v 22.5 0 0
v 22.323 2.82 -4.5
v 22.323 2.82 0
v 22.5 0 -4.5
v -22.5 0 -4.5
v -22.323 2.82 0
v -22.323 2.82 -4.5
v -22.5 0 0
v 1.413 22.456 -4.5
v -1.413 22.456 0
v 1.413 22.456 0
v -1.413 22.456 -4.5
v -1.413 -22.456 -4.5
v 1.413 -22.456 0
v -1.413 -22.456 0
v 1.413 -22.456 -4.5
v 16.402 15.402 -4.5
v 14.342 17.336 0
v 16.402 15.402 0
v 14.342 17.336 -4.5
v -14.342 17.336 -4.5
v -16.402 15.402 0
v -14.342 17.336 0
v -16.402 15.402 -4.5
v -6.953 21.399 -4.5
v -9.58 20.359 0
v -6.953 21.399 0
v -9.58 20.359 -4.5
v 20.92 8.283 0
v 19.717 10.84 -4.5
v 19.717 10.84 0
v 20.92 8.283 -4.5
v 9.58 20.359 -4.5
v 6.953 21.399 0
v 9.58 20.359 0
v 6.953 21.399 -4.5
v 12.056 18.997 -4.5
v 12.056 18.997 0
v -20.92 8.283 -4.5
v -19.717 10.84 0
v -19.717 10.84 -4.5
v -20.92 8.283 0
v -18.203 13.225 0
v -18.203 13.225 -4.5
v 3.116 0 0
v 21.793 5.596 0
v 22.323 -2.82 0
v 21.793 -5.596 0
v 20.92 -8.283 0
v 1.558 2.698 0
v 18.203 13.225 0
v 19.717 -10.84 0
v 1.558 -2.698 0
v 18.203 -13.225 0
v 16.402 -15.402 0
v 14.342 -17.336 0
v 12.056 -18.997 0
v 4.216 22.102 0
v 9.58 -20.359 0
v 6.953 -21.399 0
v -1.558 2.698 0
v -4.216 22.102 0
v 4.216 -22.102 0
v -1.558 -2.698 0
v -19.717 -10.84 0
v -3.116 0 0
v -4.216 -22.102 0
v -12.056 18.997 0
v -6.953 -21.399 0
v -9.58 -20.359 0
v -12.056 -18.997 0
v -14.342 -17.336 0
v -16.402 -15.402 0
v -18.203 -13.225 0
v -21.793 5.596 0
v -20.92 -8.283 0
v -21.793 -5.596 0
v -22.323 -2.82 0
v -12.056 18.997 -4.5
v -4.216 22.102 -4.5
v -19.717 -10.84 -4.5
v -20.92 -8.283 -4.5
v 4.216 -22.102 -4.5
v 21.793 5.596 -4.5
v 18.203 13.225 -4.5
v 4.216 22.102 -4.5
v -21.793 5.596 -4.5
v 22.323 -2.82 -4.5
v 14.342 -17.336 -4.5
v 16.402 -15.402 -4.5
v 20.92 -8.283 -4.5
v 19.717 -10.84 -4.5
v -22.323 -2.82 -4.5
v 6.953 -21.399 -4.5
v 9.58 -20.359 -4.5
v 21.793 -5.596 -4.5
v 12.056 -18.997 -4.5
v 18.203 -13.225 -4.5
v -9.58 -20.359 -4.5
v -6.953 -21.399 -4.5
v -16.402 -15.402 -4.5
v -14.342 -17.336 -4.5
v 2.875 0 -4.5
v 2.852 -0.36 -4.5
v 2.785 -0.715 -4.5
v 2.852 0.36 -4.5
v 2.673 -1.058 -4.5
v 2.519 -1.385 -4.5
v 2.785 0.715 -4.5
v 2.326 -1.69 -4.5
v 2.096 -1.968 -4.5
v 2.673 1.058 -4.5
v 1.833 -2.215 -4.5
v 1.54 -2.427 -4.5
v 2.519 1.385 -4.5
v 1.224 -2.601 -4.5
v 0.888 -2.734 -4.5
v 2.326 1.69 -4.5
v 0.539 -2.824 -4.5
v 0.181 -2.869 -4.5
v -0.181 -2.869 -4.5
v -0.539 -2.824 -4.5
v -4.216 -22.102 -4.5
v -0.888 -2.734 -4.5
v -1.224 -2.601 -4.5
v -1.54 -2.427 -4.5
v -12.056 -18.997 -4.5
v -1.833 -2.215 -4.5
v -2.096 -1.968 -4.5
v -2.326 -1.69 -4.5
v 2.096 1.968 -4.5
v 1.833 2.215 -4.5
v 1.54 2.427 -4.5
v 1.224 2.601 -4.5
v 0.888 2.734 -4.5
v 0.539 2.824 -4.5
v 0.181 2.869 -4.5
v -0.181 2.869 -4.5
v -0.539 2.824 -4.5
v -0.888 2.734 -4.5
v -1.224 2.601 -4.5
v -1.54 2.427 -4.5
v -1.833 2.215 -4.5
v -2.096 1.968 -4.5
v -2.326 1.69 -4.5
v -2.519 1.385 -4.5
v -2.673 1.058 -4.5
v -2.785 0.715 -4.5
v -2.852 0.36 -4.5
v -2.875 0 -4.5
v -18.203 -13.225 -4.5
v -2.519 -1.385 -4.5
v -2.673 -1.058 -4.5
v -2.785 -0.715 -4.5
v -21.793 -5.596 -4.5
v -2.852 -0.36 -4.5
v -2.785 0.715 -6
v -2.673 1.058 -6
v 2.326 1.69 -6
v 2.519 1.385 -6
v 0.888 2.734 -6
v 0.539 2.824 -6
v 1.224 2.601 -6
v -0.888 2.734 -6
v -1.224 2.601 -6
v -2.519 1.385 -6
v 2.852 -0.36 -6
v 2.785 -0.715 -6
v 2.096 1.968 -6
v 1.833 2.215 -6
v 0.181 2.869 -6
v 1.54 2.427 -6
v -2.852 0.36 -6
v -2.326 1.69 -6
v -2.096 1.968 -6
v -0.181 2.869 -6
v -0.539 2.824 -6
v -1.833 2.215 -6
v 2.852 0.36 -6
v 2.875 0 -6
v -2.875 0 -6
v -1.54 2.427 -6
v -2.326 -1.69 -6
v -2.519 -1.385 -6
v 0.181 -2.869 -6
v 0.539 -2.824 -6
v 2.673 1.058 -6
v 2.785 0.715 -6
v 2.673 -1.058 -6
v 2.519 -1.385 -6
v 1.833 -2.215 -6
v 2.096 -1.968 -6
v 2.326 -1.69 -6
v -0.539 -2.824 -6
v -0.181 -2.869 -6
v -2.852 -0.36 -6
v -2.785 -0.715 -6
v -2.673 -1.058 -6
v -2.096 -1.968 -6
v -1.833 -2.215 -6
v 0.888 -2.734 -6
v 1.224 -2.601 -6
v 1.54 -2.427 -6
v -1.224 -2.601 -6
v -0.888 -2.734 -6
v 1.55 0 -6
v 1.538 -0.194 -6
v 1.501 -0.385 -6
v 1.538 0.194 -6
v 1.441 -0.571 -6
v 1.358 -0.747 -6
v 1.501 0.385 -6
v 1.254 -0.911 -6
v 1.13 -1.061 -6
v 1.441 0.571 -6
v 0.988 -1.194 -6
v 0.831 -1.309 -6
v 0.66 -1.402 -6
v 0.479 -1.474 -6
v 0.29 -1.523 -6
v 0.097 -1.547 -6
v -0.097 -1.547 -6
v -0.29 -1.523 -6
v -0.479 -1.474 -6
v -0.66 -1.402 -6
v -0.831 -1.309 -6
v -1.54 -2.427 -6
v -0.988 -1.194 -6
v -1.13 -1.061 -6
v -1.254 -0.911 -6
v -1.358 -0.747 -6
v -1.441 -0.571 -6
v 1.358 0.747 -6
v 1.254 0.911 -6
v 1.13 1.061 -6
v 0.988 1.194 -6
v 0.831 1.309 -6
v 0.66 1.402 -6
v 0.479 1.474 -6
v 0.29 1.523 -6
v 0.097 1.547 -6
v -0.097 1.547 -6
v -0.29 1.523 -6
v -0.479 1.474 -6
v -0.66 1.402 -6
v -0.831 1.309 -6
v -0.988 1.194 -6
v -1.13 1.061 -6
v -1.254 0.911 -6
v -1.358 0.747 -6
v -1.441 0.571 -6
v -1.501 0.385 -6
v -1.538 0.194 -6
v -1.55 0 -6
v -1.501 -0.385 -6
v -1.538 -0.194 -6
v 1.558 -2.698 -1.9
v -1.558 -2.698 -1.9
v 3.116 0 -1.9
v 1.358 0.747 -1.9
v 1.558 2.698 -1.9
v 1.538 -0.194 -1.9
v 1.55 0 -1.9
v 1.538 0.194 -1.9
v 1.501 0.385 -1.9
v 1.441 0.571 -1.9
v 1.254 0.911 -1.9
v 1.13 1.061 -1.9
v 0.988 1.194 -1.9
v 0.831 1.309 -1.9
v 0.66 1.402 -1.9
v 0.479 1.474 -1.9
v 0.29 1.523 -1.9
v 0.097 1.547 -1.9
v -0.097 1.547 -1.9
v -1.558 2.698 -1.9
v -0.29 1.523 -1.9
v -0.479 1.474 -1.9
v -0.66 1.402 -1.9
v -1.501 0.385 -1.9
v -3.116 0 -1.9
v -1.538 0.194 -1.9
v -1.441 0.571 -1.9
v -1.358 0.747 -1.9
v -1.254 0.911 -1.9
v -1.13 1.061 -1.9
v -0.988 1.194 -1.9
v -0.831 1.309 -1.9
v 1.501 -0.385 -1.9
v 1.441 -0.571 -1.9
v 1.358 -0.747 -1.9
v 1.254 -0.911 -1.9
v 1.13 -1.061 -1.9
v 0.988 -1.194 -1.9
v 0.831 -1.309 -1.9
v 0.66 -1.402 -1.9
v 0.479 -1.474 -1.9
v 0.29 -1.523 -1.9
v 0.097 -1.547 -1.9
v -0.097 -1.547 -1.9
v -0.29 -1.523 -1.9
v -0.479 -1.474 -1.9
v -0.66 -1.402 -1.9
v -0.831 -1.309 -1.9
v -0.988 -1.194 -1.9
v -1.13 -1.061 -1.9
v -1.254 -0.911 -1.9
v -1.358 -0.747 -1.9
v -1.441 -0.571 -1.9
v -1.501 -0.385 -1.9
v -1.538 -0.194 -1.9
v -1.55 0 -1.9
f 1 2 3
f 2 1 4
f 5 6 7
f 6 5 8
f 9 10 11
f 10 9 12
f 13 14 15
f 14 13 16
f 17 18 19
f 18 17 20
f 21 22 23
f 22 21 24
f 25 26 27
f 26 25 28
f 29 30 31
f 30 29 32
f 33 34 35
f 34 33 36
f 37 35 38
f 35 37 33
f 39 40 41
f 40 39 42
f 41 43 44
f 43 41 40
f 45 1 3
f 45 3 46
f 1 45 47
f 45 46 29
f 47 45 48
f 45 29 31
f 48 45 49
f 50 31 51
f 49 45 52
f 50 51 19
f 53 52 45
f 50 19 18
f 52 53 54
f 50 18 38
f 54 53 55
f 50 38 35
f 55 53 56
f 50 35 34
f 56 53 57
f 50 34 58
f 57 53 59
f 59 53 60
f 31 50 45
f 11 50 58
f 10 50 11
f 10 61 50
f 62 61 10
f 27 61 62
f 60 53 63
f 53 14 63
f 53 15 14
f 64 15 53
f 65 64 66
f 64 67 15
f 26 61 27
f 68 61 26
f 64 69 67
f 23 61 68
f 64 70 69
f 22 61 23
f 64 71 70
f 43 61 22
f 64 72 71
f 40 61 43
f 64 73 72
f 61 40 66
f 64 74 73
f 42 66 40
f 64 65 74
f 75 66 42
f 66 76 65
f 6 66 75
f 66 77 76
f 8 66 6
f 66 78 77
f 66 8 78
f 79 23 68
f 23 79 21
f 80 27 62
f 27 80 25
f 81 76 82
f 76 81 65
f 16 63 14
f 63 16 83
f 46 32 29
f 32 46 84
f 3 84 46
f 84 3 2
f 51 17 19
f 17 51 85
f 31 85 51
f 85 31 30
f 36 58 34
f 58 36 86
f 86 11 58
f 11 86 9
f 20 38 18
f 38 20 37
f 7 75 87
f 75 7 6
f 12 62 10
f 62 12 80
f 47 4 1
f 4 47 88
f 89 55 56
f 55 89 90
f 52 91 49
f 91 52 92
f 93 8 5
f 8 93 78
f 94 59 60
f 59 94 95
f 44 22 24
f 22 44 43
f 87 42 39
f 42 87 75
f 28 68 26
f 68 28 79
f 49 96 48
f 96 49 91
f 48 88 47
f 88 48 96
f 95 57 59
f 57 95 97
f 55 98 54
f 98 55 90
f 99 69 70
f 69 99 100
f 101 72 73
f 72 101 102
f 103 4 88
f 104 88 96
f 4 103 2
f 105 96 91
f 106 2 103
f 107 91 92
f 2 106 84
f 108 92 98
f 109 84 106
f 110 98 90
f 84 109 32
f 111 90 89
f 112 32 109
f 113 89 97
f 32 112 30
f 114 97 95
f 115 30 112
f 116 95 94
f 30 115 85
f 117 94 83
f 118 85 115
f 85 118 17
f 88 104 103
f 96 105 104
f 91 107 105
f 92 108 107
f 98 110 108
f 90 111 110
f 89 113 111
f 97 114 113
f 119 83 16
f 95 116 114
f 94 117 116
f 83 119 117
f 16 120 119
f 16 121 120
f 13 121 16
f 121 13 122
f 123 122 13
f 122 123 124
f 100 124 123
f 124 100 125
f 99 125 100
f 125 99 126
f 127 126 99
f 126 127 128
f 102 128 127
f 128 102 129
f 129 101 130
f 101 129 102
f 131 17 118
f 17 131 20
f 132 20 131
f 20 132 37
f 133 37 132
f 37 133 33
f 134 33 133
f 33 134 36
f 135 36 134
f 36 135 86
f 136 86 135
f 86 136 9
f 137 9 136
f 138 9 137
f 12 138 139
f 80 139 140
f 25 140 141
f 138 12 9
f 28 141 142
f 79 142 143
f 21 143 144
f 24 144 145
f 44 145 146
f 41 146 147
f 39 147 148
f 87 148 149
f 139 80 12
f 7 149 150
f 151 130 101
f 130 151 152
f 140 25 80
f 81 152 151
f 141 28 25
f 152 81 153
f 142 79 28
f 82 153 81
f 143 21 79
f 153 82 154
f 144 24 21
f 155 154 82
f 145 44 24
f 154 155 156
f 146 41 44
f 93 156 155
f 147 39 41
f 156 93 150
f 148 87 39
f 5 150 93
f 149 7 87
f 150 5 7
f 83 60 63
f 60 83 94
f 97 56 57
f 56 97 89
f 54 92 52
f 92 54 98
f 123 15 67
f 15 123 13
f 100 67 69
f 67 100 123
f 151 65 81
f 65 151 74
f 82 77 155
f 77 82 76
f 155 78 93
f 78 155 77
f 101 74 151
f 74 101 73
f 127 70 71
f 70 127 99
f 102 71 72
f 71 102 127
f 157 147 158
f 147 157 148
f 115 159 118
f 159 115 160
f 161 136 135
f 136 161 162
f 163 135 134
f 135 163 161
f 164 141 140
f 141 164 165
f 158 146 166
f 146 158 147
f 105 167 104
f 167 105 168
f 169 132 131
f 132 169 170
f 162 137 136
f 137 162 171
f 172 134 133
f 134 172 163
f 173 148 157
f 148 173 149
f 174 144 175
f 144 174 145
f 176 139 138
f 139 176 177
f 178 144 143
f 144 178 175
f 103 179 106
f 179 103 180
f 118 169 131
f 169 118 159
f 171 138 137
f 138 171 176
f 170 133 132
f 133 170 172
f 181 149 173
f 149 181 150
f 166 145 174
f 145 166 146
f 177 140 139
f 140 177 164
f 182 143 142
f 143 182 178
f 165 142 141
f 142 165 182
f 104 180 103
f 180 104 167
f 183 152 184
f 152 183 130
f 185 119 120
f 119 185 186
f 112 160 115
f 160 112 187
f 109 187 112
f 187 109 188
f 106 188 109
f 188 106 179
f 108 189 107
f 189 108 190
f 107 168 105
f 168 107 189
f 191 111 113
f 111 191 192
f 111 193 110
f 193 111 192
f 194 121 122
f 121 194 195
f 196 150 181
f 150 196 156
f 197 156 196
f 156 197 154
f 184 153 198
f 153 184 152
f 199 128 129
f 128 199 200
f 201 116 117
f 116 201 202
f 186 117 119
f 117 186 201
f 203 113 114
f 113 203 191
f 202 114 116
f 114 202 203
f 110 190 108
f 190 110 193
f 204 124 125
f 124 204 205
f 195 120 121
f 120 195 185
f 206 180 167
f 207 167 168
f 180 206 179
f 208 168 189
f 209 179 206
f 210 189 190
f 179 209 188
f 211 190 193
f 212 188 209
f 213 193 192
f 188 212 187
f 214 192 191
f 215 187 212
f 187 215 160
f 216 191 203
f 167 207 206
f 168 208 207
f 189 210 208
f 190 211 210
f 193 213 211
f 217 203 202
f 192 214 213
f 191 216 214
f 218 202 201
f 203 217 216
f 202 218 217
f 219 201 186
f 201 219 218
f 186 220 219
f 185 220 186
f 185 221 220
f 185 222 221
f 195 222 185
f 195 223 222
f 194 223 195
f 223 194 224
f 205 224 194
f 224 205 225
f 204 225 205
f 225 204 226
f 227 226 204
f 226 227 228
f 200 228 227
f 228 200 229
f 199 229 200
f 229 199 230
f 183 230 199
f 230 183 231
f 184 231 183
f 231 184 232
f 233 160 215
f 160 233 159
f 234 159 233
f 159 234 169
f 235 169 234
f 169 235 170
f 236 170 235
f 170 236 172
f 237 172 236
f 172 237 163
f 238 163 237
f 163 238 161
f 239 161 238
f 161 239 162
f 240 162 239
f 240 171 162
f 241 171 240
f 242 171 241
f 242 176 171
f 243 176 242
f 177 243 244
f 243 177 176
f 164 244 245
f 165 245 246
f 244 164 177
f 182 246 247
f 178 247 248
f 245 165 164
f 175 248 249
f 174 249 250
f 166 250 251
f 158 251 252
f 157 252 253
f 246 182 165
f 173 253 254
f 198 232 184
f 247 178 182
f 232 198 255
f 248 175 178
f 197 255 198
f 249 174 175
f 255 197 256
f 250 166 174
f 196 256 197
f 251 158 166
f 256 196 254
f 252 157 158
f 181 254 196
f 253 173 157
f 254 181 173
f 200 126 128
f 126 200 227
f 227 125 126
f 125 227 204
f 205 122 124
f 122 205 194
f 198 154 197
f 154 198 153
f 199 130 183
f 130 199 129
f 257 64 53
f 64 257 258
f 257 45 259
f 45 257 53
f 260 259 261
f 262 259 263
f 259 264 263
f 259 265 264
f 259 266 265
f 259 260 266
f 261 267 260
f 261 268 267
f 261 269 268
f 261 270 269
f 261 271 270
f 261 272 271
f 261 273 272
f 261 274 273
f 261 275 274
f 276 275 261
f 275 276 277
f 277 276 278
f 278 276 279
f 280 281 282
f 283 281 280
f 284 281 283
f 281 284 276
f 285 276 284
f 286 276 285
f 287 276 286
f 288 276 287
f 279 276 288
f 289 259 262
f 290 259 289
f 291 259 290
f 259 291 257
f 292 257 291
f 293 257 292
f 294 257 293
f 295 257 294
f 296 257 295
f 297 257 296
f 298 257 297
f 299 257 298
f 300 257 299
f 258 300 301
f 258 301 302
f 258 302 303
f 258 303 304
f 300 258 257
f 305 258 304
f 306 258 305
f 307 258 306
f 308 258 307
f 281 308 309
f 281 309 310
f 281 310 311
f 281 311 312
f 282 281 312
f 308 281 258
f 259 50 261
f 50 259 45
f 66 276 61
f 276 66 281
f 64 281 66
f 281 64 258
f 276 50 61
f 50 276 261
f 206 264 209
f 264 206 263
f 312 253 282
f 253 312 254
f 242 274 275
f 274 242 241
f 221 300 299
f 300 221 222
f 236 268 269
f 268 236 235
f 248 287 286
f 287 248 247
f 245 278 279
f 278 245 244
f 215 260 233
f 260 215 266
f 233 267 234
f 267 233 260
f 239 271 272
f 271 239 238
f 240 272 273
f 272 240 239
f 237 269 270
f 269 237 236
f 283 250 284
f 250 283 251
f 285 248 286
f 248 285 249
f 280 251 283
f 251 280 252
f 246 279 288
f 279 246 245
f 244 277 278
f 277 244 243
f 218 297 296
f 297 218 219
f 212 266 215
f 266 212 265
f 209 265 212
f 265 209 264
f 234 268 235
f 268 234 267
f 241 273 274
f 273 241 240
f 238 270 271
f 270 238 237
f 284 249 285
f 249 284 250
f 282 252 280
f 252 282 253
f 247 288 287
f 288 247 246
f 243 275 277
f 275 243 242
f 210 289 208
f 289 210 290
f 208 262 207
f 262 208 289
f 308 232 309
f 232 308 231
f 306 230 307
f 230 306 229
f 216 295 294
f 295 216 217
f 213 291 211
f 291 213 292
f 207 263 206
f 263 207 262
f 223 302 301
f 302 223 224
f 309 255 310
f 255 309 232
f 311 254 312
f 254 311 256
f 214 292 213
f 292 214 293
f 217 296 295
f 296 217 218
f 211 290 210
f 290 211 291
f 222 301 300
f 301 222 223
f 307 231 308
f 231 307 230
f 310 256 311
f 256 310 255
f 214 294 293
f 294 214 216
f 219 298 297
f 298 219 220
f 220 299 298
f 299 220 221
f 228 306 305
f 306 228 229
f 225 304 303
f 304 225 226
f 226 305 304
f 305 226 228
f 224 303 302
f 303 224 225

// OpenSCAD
$fn = 50;


difference() {
	union() {
		translate(v = [0, 0, -4.5000000000]) {
			cylinder(h = 4.5000000000, r = 22.5000000000);
		}
		translate(v = [0, 0, -6.0000000000]) {
			cylinder(h = 6, r = 2.8750000000);
		}
	}
	union() {
		translate(v = [0, 0, 0]) {
			rotate(a = [0, 0, 0]) {
				difference() {
					union() {
						translate(v = [0, 0, -1.9000000000]) {
							linear_extrude(height = 1.9000000000) {
								polygon(points = [[3.1158000000, 0.0000000000], [1.5579000000, 2.6983619531], [-1.5579000000, 2.6983619531], [-3.1158000000, 0.0000000000], [-1.5579000000, -2.6983619531], [1.5579000000, -2.6983619531]]);
							}
						}
					}
					union();
				}
			}
		}
		#translate(v = [0, 0, -100.0000000000]) {
			cylinder(h = 200, r = 1.5500000000);
		}
	}
}
